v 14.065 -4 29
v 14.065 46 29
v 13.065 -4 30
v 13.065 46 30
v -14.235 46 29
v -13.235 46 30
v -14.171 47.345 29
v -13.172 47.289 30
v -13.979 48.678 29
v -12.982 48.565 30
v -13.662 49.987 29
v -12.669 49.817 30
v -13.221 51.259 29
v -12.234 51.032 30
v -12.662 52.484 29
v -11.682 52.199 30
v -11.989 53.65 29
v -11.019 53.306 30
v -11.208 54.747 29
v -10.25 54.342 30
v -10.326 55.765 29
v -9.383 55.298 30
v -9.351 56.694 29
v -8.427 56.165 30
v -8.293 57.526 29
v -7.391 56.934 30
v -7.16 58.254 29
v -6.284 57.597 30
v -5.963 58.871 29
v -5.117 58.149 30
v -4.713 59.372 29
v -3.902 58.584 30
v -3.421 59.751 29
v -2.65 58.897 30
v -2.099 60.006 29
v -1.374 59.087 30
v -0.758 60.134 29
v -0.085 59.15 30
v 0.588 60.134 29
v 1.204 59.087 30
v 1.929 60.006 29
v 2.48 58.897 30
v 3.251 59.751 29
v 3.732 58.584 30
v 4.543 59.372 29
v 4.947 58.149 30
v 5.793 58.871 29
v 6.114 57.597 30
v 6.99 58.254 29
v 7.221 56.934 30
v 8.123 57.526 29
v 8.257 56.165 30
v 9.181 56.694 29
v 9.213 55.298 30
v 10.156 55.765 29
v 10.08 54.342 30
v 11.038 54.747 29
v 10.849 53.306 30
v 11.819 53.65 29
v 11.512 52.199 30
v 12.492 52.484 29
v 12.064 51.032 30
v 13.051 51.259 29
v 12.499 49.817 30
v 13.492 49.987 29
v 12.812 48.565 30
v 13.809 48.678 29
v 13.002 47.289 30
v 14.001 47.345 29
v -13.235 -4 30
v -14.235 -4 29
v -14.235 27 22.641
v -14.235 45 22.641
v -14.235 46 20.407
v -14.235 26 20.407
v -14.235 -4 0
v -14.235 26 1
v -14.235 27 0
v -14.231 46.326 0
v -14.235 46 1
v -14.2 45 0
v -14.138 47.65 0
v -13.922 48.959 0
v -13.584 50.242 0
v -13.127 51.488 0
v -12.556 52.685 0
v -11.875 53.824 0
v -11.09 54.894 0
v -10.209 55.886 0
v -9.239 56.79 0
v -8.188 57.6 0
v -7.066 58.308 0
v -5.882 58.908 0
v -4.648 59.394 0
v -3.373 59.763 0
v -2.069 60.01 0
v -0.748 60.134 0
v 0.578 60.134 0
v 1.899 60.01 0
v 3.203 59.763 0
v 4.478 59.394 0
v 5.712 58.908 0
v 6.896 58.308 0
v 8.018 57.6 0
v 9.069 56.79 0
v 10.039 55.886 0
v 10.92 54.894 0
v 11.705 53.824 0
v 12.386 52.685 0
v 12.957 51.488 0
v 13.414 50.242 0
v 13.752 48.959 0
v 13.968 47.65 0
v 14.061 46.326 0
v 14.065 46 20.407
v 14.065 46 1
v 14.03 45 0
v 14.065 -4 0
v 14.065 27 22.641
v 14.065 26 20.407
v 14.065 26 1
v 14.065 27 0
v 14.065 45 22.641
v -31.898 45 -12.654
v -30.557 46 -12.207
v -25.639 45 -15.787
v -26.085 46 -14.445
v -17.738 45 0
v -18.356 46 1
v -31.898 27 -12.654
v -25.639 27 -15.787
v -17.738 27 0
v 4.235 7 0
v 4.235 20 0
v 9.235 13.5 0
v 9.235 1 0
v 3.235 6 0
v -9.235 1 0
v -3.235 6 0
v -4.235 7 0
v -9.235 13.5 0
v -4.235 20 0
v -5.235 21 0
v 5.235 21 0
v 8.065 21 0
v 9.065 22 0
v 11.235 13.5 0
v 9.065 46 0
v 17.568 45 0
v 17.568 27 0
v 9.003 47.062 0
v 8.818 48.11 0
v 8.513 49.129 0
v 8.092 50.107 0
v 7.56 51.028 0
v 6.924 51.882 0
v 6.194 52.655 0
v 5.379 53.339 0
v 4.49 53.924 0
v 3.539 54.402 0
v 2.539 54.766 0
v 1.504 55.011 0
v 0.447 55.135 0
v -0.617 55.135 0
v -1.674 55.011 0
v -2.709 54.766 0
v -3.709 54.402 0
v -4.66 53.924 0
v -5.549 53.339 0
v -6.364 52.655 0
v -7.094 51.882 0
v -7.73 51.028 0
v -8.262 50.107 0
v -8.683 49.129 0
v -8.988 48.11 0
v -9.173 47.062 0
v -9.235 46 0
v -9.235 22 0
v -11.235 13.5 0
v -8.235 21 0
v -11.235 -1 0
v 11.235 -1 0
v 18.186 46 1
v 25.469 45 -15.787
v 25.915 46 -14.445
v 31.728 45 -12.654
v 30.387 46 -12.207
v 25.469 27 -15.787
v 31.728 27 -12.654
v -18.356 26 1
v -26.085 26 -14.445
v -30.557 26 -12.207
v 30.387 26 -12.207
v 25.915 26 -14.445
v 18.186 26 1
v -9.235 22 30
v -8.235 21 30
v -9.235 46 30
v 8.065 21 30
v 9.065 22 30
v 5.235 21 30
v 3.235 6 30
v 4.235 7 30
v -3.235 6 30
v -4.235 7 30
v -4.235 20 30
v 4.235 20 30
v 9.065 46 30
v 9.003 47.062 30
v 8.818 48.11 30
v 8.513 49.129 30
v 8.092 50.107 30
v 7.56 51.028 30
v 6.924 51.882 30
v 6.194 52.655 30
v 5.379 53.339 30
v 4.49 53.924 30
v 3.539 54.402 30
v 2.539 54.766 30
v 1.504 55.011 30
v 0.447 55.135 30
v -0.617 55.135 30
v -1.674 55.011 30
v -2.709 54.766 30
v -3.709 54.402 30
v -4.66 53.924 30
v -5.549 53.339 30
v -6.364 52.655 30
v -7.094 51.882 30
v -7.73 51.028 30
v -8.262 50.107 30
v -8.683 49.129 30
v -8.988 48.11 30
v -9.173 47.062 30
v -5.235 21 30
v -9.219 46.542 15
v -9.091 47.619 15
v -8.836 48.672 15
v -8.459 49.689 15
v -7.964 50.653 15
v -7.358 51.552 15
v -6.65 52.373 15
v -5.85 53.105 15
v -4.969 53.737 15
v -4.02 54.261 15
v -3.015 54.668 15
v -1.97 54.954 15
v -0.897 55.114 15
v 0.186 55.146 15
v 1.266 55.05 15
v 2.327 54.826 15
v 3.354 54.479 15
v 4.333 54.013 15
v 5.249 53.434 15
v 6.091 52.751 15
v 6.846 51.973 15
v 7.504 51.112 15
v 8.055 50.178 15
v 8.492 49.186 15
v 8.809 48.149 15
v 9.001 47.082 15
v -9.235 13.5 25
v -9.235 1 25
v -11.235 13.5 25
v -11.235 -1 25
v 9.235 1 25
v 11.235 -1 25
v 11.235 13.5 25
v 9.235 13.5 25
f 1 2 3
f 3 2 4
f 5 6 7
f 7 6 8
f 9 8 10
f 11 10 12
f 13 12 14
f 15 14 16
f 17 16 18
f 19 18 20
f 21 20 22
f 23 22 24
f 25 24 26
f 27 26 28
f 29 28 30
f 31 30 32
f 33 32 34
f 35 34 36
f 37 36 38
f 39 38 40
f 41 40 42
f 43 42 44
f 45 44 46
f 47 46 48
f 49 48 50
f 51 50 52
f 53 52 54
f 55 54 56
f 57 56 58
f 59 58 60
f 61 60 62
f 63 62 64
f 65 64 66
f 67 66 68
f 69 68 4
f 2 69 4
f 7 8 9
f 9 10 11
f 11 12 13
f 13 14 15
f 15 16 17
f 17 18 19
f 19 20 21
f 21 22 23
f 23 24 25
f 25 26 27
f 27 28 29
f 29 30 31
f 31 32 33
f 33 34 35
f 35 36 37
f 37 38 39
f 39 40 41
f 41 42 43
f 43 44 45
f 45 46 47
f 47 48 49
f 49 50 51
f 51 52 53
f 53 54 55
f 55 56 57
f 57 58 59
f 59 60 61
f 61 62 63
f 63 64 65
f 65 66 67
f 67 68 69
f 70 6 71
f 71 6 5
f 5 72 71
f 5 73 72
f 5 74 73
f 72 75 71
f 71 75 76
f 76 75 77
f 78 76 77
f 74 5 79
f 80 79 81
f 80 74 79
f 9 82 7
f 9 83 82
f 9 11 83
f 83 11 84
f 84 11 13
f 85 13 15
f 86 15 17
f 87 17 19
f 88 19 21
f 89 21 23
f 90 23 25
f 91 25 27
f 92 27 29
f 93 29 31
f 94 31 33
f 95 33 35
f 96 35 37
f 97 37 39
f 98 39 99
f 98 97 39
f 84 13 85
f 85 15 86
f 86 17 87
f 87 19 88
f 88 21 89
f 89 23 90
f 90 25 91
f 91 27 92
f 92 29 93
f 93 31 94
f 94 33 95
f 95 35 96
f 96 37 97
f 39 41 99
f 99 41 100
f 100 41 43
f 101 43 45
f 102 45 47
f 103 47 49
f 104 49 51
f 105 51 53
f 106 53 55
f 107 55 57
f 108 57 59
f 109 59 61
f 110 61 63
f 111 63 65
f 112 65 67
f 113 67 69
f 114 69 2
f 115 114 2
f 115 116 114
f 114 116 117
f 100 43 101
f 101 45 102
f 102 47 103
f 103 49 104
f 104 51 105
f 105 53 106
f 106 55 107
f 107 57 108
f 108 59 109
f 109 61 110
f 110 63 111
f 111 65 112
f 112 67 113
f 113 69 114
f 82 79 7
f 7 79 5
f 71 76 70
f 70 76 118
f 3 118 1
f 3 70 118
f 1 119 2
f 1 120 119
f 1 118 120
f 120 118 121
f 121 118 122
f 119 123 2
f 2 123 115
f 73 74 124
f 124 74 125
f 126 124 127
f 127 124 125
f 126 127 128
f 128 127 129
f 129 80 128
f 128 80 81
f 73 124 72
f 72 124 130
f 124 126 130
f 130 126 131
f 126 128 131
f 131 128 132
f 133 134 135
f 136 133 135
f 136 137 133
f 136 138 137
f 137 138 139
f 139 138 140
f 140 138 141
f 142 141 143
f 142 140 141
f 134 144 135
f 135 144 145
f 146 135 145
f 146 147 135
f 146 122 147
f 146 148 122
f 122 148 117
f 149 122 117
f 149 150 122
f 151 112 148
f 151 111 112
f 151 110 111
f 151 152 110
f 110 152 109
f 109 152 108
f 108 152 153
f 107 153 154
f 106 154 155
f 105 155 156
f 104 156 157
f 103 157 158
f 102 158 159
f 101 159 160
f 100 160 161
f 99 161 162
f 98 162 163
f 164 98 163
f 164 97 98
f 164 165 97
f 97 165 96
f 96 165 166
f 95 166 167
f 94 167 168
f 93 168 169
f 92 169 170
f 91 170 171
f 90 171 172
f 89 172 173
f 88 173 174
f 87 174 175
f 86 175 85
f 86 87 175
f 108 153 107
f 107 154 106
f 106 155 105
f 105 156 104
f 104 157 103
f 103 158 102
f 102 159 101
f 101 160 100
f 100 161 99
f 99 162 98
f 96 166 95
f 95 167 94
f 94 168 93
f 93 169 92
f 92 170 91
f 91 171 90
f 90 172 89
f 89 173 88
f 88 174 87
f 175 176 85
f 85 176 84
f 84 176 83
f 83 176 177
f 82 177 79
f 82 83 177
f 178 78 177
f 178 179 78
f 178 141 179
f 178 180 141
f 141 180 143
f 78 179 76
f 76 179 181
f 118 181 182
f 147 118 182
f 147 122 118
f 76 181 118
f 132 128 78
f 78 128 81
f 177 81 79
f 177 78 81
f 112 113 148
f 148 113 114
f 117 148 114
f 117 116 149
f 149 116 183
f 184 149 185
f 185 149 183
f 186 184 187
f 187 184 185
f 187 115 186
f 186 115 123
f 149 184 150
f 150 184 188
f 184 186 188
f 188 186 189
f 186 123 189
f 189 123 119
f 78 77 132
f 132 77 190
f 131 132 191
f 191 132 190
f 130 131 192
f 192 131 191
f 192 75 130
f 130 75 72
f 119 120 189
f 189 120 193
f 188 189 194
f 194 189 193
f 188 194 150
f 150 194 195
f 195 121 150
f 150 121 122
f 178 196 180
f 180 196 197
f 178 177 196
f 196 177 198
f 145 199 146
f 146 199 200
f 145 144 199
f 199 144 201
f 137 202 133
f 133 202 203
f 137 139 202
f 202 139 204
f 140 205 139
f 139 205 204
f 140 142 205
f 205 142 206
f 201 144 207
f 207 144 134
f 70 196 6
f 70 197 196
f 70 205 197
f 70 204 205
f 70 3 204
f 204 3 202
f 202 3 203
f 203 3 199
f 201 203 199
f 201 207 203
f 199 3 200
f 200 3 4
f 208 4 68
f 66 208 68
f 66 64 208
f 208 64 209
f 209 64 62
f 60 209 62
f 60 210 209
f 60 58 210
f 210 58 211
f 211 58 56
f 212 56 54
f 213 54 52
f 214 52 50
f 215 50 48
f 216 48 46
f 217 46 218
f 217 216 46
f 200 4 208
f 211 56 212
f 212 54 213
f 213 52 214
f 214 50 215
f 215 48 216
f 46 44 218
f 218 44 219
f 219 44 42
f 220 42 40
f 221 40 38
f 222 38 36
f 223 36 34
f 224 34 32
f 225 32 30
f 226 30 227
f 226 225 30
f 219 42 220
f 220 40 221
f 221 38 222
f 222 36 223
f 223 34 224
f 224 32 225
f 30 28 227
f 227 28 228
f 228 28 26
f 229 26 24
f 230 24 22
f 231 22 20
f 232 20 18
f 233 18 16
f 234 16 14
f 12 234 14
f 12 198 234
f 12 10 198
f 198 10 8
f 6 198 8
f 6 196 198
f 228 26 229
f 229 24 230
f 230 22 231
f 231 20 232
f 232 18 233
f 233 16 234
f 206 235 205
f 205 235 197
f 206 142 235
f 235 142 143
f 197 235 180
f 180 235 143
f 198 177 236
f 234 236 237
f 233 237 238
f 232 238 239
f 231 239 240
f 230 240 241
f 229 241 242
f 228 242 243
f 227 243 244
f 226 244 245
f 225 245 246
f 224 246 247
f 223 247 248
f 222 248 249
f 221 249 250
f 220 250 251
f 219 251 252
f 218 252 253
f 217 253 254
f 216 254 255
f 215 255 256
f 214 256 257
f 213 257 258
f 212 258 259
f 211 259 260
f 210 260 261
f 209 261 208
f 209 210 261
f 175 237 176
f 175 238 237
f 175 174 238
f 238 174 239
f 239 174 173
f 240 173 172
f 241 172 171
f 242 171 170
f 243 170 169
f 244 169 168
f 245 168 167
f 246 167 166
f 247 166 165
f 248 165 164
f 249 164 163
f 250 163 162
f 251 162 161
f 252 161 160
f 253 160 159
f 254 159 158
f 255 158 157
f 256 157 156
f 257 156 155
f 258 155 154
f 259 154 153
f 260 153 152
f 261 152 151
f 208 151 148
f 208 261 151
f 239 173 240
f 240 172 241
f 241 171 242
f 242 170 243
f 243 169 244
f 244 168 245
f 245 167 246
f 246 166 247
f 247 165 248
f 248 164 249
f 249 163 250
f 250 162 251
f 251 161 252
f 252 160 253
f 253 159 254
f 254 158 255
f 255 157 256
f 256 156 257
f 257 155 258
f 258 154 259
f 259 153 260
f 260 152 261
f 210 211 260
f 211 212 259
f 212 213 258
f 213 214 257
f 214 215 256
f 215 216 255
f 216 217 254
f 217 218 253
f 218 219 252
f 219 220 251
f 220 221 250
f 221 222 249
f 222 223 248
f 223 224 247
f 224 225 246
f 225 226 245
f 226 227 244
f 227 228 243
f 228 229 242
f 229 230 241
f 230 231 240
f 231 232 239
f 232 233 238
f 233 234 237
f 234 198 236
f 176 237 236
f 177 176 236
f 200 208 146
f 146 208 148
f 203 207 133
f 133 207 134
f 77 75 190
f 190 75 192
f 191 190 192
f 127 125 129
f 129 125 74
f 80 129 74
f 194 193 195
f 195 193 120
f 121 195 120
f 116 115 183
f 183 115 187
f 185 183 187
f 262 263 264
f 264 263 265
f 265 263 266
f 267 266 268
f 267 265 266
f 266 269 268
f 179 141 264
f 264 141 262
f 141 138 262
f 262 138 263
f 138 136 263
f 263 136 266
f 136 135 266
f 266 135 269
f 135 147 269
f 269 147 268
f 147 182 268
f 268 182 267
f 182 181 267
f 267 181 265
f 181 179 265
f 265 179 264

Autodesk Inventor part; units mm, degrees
ref_plane "YZ Plane" through (0, 0, 0) normal (1, 0, 0) x (0, 1, 0)
ref_plane "XZ Plane" through (0, 0, 0) normal (0, 1, 0) x (-1, 0, 0)
sketch "Sketch1" plane through (0, 0, 0) normal (0, 0, 1) x (1, 0, 0)
  line L0 (-9.235, 1) -> (9.235, 1)
  line L1 (11.235, 1.1946) -> (11.235, -1)
  line L2 (11.235, -1) -> (-11.235, -1)
  line L3 (-11.235, -1) -> (-11.235, 1.0973)
  line L4 (-9.235, 1) -> (-9.235, 13.5)
  line L5 (-9.235, 13.5) -> (-11.235, 13.5)
  line L6 (-11.235, 13.5) -> (-11.235, 1.0973)
  line L7 (9.235, 1) -> (9.235, 13.5)
  line L8 (9.235, 13.5) -> (11.235, 13.5)
  line L9 (11.235, 13.5) -> (11.235, 1.1946)
  line L10 (-14.235, -4) -> (14.065, -4)
  line L11 (14.065, -4) -> (14.065, 46)
  line L12 (14.065, 46) -> (-14.235, 46)
  line L13 (-14.235, 46) -> (-14.235, -4)
  arc A0 (14.065, 46) -> (-14.235, 46) centre (-0.085, 46) ccw
  point P0 (0, 0)
  point P1 (0, 0)
  dimension "d0" = 22.47
  dimension "d1" = 11.235
  dimension "d3" = 1
  dimension "d4" = 14.5
  dimension "d5" = 2
  dimension "d6" = 2
  dimension "d7" = 14.5
  dimension "d10" = 2
  dimension "d19" = 28.3
  dimension "d20" = 50
  dimension "d21" = 14.15
  dimension "d22" = 3
  dimension "d23" = 3
  dimension "d64" = 18.47
extrude "Extrusion2" add sketch "Sketch1" along normal blind 25
sketch "Sketch2" plane through (0, 0, 25) normal (0, 0, 1) x (1, 0, 0)
  line L0 (-14.235, 46) -> (-14.235, -4) projected
  line L1 (-14.235, -4) -> (14.065, -4) projected
  line L2 (14.065, -4) -> (14.065, 46) projected
  line L3 (14.065, -4) -> (14.065, 46) projected
  line L4 (-14.235, -4) -> (14.065, -4)
  line L5 (14.065, -4) -> (14.065, 46)
  line L6 (-14.235, 46) -> (-14.235, -4)
  arc A0 (14.065, 46) -> (-14.235, 46) centre (-0.085, 46) ccw
  point P0 (0, 0)
extrude "Extrusion3" add sketch "Sketch2" along normal blind 5
ref_plane "Work Plane1" through (-14.235, 46, 0) normal (0, -1, 0) x (1, 0, 0)
sketch "Sketch3" plane through (-14.235, 46, 0) normal (0, -1, 0) x (1, 0, 0)
  line L0 (0, 0) -> (28.3, 0) projected
  line L1 (28.3, 0) -> (28.3, 30) projected
  line L2 (0, 30) -> (28.3, 30) projected
  line L3 (0, 0) -> (0, 30) projected
  line L4 (14.235, 0) -> (42.81, 0) construction
  line L5 (28.3, 0) -> (28.3, 30) projected
  line L6 (31.8032, 0) -> (39.7036, -15.7866)
  line L7 (39.7036, -15.7866) -> (45.9635, -12.6539)
  line L8 (45.9635, -12.6539) -> (28.3, 22.6411)
  line L9 (28.3, 0) -> (0, 0) projected
  line L10 (28.3, 0) -> (31.8032, 0)
  line L11 (-3.5032, 0) -> (-11.4036, -15.7866)
  line L12 (-11.4036, -15.7866) -> (-17.6635, -12.6539)
  line L13 (-17.6635, -12.6539) -> (0, 22.6411)
  line L14 (0, 0) -> (-3.5032, 0)
  line L15 (0, 0) -> (0, 22.6411)
  dimension "d31" = 7
extrude "Extrusion4" add sketch "Sketch3" along normal blind 20 contours L14 L11 L12 L13 L3 | L1 L8 L7 L6 L10
sketch "Sketch4" plane through (0, 0, 0) normal (0, 0, -1) x (-1, 0, 0)
  line L0 (14.235, -4) -> (-14.065, -4) projected
  line L1 (0.085, -4) -> (0.085, 46)
  arc A0 (9.235, 46) -> (-9.065, 46) centre (0.085, 46) ccw
  line L2 (-9.065, 46) -> (-9.065, 21)
  line L3 (9.235, 46) -> (9.235, 21)
  arc A1 (14.235, 46) -> (-14.065, 46) centre (0.085, 46) ccw projected
  line L4 (-4.235, 21) -> (-4.235, 6)
  line L5 (-4.235, 6) -> (4.235, 6)
  line L6 (4.235, 6) -> (4.235, 21)
  line L7 (11.235, 13.5) -> (9.235, 13.5) projected
  line L8 (9.235, 13.5) -> (9.235, 1) projected
  line L9 (9.235, 1) -> (-9.235, 1) projected
  line L10 (-9.235, 1) -> (-9.235, 13.5) projected
  line L11 (-9.235, 13.5) -> (-11.235, 13.5) projected
  line L12 (-11.235, 13.5) -> (-11.235, -1) projected
  line L13 (-11.235, -1) -> (11.235, -1) projected
  line L14 (11.235, -1) -> (11.235, 13.5) projected
  line L15 (-9.065, 21) -> (-4.235, 21)
  line L16 (4.235, 21) -> (9.235, 21)
  point P0 (0, 0)
  dimension "d34" = 50
  dimension "d38" = 25
  dimension "d46" = 5
  dimension "d47" = 5
  dimension "d48" = 5
  dimension "d49" = 5
extrude "Extrusion5" cut sketch "Sketch4" against normal blind 30 contours L5 L4 L15 L2 A0 L3 L16 L6
chamfer "Chamfer1" distance 1 angle 45 6 edges at (-4.235, 21, 15) (4.235, 21, 15) (-4.235, 6, 15) (4.235, 6, 15) (9.065, 21, 15) (-9.235, 21, 15)
chamfer "Chamfer3" distance 1 angle 45 8 edges at (22.8967, 26, 4.9936) (28.5986, 26, -14.2202) (21.5184, 26, -7.8933) (15.8166, 26, 0) (-15.9866, 26, 0) (-21.6884, 26, -7.8933) (-28.7686, 26, -14.2202) (-23.0667, 26, 4.9936)
chamfer "Chamfer4" distance 1 angle 45 8 edges at (15.8166, 46, 0) (21.5184, 46, -7.8933) (22.8967, 46, 4.9936) (28.5986, 46, -14.2202) (-23.0667, 46, 4.9936) (-28.7686, 46, -14.2202) (-15.9866, 46, 0) (-21.6884, 46, -7.8933)
chamfer "Chamfer5" distance 1 angle 45 3 edges at (-0.085, 60.15, 30) (-14.235, 21, 30) (14.065, 21, 30)
equation "\"d1\" = 0.5 * d0"
equation "\"d3\" = 0.5 * d10"
equation "\"d6\" = d5"
equation "\"d7\" = d4"
equation "\"d10\" = d5"
properties part number "EndStopGeneric"
